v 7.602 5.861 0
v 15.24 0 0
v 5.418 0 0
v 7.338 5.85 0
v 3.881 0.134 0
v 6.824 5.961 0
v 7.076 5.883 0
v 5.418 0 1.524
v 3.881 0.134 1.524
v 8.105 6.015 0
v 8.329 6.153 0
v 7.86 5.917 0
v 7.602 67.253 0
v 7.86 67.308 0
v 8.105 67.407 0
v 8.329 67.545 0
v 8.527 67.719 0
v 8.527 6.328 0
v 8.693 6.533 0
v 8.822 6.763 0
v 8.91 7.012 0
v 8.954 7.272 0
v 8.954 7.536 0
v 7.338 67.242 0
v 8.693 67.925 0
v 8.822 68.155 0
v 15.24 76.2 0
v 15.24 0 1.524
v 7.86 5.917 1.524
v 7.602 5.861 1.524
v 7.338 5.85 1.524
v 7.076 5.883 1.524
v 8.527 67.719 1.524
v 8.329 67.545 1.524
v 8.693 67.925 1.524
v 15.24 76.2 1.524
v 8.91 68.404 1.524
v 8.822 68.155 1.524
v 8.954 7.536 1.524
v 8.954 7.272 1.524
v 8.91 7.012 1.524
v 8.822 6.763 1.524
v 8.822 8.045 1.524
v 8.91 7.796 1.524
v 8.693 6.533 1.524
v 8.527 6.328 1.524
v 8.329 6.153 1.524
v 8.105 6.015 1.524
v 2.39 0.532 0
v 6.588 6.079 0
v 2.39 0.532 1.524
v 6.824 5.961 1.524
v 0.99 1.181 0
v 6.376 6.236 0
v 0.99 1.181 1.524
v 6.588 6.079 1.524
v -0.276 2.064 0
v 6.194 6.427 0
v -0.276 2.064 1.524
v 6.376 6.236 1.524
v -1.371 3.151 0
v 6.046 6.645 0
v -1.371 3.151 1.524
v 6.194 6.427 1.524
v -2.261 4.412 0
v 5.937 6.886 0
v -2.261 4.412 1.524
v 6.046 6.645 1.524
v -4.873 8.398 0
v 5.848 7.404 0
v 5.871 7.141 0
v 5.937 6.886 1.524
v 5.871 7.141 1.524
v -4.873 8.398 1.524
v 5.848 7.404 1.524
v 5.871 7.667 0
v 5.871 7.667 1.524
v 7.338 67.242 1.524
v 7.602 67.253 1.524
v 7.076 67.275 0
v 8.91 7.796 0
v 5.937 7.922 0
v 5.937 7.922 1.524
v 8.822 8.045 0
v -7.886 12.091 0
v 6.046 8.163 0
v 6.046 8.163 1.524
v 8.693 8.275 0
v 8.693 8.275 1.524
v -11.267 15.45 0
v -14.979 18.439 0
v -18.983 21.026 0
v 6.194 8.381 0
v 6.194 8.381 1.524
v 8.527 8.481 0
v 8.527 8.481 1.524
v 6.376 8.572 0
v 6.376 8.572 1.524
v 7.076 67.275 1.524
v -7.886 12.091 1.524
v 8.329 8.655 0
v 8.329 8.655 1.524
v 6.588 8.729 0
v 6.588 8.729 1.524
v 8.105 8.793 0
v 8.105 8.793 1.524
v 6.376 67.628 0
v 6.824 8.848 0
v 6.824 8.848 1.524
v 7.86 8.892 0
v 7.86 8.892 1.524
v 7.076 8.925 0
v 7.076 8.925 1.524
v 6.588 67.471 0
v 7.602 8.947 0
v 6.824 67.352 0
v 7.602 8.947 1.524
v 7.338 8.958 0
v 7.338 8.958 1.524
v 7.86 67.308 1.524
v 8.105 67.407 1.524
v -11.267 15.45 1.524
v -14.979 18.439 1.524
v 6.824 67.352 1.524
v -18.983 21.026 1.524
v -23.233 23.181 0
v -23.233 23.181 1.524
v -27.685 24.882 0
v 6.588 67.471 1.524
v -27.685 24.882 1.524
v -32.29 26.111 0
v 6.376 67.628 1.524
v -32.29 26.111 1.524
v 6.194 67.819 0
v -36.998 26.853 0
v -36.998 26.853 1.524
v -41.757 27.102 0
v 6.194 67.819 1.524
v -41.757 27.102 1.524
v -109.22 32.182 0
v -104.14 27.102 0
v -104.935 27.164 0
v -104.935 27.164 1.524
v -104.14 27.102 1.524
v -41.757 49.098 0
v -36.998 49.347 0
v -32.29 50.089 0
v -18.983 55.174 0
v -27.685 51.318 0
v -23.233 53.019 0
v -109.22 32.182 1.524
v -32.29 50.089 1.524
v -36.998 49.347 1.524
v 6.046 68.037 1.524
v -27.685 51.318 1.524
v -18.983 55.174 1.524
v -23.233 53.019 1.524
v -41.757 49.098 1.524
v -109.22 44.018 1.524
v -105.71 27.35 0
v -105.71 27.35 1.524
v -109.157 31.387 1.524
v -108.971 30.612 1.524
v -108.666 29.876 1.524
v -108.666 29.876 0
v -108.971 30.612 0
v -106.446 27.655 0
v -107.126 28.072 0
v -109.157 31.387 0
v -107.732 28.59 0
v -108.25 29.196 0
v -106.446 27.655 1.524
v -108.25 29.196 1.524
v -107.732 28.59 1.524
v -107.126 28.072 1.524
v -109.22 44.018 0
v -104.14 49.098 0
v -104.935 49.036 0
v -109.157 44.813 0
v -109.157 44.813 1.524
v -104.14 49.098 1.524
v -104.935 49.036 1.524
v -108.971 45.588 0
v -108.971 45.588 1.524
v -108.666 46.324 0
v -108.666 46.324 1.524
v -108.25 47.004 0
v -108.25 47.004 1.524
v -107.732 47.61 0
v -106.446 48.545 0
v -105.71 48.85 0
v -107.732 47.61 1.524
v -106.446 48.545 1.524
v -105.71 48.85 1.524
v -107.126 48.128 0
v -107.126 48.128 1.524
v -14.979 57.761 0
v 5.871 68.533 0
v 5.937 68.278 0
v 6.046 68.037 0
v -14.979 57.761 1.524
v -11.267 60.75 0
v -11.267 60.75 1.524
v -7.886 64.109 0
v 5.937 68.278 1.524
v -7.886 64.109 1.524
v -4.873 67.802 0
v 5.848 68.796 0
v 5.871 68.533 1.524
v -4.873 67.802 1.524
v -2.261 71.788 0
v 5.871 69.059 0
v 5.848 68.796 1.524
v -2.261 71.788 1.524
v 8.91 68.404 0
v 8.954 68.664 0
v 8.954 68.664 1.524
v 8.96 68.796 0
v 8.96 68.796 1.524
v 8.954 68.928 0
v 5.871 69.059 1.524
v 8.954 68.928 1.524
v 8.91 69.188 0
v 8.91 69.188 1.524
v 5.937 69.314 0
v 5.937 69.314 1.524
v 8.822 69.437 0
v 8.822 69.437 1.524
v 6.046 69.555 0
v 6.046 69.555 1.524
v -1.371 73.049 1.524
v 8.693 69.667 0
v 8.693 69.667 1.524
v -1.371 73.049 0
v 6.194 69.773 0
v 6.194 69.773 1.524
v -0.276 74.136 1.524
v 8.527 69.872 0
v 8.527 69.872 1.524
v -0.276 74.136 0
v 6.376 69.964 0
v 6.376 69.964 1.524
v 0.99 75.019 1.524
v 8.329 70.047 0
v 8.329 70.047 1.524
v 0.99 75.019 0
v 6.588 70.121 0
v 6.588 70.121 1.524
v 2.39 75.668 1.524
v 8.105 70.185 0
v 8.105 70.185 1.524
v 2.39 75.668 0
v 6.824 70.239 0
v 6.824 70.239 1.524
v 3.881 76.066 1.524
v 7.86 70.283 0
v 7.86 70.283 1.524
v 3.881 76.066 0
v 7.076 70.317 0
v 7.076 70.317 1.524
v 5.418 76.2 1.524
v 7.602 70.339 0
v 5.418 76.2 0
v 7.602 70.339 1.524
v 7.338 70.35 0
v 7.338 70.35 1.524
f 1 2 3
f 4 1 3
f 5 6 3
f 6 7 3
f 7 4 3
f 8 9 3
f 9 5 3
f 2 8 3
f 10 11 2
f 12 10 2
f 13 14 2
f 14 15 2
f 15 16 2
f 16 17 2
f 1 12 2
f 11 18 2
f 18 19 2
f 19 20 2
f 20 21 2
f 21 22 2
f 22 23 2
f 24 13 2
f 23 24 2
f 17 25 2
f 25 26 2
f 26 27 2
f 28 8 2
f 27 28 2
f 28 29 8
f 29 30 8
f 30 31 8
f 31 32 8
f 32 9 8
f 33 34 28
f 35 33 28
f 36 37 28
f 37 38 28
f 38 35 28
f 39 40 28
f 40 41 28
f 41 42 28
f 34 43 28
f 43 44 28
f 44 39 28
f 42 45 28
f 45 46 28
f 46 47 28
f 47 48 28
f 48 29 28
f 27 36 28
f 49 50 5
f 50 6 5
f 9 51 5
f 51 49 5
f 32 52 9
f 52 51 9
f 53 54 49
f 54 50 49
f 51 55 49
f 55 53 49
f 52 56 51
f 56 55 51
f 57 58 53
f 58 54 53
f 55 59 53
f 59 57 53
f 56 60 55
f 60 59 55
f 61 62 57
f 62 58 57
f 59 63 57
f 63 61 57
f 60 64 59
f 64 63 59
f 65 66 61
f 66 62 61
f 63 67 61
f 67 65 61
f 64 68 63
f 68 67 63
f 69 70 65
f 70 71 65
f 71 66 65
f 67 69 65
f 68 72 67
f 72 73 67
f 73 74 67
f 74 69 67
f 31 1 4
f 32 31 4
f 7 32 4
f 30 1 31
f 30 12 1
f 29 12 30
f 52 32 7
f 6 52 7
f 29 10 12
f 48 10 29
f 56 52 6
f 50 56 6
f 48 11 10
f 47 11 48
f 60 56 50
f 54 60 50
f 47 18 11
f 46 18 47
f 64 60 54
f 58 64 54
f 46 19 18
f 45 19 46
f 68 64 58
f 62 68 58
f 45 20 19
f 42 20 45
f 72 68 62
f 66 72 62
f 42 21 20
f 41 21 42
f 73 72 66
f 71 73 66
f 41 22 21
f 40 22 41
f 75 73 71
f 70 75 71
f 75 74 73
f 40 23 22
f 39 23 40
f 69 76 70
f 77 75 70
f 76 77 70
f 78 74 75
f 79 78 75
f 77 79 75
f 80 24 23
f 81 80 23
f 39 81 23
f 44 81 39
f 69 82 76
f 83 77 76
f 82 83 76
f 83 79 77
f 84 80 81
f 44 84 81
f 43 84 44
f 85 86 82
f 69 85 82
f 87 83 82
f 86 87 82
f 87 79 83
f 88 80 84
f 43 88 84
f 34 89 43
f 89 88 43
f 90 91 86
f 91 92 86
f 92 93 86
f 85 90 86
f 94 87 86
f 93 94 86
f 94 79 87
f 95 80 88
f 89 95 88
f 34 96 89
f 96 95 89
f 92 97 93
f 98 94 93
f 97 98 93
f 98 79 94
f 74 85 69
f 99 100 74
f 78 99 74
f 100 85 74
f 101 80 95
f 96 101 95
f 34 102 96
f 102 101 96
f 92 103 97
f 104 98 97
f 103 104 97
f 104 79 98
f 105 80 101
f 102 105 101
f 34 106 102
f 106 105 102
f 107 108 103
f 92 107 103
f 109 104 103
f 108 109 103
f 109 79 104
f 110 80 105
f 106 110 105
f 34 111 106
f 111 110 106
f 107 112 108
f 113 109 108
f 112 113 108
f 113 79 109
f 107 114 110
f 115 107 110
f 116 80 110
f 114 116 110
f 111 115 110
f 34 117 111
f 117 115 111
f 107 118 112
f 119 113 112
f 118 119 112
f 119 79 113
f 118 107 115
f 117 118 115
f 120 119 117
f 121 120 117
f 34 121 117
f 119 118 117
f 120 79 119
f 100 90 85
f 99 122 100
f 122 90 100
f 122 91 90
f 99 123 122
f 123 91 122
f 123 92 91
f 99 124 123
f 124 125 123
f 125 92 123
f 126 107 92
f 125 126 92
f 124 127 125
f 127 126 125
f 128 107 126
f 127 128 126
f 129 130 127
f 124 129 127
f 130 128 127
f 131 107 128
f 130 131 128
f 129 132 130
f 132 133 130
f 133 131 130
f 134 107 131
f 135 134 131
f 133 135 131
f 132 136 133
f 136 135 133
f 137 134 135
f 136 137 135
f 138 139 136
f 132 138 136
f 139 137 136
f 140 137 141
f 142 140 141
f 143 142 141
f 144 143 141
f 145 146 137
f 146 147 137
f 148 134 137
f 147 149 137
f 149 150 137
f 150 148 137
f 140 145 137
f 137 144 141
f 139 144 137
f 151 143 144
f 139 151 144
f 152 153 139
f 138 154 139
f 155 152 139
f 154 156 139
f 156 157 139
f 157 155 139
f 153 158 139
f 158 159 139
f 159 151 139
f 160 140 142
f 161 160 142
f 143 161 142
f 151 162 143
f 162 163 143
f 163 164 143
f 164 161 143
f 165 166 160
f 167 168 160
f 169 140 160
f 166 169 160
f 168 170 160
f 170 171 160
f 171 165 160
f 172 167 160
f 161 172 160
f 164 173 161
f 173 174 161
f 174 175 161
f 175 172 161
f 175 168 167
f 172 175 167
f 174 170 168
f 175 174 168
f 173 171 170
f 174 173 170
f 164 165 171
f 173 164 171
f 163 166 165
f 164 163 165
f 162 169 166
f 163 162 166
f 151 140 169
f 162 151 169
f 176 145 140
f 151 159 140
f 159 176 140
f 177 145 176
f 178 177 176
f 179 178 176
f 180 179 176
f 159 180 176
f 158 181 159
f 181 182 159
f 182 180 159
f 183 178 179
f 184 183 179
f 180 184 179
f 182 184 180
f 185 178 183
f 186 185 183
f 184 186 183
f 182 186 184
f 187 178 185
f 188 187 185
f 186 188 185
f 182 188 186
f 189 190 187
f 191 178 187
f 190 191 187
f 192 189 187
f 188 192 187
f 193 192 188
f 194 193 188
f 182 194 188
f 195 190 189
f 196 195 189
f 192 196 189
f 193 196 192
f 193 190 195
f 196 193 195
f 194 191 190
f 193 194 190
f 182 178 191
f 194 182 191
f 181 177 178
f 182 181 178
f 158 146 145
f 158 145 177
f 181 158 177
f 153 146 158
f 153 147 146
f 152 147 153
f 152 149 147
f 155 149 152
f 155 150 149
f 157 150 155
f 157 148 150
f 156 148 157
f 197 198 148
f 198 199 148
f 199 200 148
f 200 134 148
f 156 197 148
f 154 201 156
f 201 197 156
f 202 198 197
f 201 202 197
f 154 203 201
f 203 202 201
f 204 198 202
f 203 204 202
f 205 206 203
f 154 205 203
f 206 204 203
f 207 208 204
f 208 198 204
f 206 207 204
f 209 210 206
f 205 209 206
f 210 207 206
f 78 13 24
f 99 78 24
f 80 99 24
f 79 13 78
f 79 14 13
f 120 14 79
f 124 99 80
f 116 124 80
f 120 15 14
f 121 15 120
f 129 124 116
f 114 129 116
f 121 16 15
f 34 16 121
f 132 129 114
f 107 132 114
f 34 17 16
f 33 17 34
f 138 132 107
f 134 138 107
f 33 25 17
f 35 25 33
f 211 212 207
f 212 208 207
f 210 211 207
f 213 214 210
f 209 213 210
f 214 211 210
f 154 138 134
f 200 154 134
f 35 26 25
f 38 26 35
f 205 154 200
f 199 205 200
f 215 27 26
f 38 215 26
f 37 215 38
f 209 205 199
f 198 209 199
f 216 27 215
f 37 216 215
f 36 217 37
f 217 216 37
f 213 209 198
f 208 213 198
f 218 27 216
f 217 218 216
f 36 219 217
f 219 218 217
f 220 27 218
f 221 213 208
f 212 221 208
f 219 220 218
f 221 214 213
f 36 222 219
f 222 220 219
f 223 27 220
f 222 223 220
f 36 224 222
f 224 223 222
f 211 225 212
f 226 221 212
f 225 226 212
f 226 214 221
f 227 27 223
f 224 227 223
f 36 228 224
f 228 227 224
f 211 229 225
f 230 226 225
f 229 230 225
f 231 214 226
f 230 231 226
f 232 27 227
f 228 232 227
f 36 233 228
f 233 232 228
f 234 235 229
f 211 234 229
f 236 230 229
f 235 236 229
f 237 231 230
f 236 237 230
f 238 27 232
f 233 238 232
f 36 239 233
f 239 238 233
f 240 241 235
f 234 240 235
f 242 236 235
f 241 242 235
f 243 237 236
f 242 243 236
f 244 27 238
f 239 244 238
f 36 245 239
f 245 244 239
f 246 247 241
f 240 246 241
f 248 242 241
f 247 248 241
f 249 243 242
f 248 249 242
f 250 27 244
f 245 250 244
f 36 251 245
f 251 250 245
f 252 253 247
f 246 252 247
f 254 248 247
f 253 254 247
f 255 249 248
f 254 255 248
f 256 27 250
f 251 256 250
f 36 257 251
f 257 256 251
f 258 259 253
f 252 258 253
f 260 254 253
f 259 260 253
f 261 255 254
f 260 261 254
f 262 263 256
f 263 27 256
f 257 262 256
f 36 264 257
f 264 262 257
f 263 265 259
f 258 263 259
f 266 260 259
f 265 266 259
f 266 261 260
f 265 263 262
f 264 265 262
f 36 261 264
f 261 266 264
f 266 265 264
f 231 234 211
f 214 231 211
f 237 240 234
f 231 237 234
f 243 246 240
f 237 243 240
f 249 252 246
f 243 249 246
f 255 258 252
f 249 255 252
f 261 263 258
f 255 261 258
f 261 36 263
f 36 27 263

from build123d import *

# Parameters (mm, degrees)
SKETCH1_R           = 1.55575
BOSS_EXTRUDE1_DEPTH = 1.524
FILLET1_R           = 5.08
FILLET2_R           = 45.72
FILLET3_R           = 8.89


with BuildPart() as part:
    # Sketch1 → Boss-Extrude1 (new body)
    with BuildSketch(Plane.XY):
        Polygon((0, 49.0982), (0, 76.2), (15.24, 76.2), (15.24, 0), (0, 0), (0, 27.1018), (-109.22, 27.1018), (-109.22, 49.0982), align=None)
        with Locations(Location((7.4041, 68.7959, 0), (0, 0, 180))):
            Circle(SKETCH1_R, mode=Mode.SUBTRACT)
        with Locations(Location((7.4041, 7.4041, 0), (0, 0, 180))):
            Circle(SKETCH1_R, mode=Mode.SUBTRACT)
    extrude(amount=BOSS_EXTRUDE1_DEPTH)

    # Fillet1
    fillet1_edges = [part.edges().sort_by_distance(p)[0] for p in [
        (-109.22, 27.1018, 0.762),
        (-109.22, 49.0982, 0.762),
    ]]
    fillet(fillet1_edges, radius=FILLET1_R)

    # Fillet2
    # the kernel refuses this fillet: 45.72 mm, written as the material it adds along each edge
    with BuildSketch(Plane(origin=(0, 27.1018, 0), x_dir=(-1, 0, 0), z_dir=(0, 0, 1))) as fillet2_piece_1:
        with BuildLine():
            CenterArc((41.757406873, 45.72), FILLET2_R, 204.030458178, 65.969541822)
            Line((0, 27.1018), (-0.835148137, 26.729436))
            ThreePointArc((-0.835148137, 26.729436), (-0.9144, 13.5509), (-0.9144, 0))
            Line((-0.9144, 0), (0, -0.9144))
            Line((0, -0.9144), (41.757406873, -0.9144))
            Line((41.757406873, -0.9144), (41.757406873, 0))
        make_face()
    extrude(amount=1.524)
    with BuildSketch(Plane(origin=(0, 49.0982, 0), x_dir=(-1, 0, 0), z_dir=(0, 0, 1))) as fillet2_piece_2:
        with BuildLine():
            CenterArc((41.757406873, -45.72), FILLET2_R, 90, 65.969541822)
            Line((0, -27.1018), (-0.835148137, -26.729436))
            ThreePointArc((-0.835148137, -26.729436), (-0.9144, -13.5509), (-0.9144, 0))
            Line((-0.9144, 0), (0, 0.9144))
            Line((0, 0.9144), (41.757406873, 0.9144))
            Line((41.757406873, 0.9144), (41.757406873, 0))
        make_face()
    extrude(amount=1.524)

    # Fillet3
    fillet3_edges = [part.edges().sort_by_distance(p)[0] for p in [
        (0, 76.2, 0.762),
        (0, 0, 0.762),
    ]]
    fillet(fillet3_edges, radius=FILLET3_R)


solid = part.part
